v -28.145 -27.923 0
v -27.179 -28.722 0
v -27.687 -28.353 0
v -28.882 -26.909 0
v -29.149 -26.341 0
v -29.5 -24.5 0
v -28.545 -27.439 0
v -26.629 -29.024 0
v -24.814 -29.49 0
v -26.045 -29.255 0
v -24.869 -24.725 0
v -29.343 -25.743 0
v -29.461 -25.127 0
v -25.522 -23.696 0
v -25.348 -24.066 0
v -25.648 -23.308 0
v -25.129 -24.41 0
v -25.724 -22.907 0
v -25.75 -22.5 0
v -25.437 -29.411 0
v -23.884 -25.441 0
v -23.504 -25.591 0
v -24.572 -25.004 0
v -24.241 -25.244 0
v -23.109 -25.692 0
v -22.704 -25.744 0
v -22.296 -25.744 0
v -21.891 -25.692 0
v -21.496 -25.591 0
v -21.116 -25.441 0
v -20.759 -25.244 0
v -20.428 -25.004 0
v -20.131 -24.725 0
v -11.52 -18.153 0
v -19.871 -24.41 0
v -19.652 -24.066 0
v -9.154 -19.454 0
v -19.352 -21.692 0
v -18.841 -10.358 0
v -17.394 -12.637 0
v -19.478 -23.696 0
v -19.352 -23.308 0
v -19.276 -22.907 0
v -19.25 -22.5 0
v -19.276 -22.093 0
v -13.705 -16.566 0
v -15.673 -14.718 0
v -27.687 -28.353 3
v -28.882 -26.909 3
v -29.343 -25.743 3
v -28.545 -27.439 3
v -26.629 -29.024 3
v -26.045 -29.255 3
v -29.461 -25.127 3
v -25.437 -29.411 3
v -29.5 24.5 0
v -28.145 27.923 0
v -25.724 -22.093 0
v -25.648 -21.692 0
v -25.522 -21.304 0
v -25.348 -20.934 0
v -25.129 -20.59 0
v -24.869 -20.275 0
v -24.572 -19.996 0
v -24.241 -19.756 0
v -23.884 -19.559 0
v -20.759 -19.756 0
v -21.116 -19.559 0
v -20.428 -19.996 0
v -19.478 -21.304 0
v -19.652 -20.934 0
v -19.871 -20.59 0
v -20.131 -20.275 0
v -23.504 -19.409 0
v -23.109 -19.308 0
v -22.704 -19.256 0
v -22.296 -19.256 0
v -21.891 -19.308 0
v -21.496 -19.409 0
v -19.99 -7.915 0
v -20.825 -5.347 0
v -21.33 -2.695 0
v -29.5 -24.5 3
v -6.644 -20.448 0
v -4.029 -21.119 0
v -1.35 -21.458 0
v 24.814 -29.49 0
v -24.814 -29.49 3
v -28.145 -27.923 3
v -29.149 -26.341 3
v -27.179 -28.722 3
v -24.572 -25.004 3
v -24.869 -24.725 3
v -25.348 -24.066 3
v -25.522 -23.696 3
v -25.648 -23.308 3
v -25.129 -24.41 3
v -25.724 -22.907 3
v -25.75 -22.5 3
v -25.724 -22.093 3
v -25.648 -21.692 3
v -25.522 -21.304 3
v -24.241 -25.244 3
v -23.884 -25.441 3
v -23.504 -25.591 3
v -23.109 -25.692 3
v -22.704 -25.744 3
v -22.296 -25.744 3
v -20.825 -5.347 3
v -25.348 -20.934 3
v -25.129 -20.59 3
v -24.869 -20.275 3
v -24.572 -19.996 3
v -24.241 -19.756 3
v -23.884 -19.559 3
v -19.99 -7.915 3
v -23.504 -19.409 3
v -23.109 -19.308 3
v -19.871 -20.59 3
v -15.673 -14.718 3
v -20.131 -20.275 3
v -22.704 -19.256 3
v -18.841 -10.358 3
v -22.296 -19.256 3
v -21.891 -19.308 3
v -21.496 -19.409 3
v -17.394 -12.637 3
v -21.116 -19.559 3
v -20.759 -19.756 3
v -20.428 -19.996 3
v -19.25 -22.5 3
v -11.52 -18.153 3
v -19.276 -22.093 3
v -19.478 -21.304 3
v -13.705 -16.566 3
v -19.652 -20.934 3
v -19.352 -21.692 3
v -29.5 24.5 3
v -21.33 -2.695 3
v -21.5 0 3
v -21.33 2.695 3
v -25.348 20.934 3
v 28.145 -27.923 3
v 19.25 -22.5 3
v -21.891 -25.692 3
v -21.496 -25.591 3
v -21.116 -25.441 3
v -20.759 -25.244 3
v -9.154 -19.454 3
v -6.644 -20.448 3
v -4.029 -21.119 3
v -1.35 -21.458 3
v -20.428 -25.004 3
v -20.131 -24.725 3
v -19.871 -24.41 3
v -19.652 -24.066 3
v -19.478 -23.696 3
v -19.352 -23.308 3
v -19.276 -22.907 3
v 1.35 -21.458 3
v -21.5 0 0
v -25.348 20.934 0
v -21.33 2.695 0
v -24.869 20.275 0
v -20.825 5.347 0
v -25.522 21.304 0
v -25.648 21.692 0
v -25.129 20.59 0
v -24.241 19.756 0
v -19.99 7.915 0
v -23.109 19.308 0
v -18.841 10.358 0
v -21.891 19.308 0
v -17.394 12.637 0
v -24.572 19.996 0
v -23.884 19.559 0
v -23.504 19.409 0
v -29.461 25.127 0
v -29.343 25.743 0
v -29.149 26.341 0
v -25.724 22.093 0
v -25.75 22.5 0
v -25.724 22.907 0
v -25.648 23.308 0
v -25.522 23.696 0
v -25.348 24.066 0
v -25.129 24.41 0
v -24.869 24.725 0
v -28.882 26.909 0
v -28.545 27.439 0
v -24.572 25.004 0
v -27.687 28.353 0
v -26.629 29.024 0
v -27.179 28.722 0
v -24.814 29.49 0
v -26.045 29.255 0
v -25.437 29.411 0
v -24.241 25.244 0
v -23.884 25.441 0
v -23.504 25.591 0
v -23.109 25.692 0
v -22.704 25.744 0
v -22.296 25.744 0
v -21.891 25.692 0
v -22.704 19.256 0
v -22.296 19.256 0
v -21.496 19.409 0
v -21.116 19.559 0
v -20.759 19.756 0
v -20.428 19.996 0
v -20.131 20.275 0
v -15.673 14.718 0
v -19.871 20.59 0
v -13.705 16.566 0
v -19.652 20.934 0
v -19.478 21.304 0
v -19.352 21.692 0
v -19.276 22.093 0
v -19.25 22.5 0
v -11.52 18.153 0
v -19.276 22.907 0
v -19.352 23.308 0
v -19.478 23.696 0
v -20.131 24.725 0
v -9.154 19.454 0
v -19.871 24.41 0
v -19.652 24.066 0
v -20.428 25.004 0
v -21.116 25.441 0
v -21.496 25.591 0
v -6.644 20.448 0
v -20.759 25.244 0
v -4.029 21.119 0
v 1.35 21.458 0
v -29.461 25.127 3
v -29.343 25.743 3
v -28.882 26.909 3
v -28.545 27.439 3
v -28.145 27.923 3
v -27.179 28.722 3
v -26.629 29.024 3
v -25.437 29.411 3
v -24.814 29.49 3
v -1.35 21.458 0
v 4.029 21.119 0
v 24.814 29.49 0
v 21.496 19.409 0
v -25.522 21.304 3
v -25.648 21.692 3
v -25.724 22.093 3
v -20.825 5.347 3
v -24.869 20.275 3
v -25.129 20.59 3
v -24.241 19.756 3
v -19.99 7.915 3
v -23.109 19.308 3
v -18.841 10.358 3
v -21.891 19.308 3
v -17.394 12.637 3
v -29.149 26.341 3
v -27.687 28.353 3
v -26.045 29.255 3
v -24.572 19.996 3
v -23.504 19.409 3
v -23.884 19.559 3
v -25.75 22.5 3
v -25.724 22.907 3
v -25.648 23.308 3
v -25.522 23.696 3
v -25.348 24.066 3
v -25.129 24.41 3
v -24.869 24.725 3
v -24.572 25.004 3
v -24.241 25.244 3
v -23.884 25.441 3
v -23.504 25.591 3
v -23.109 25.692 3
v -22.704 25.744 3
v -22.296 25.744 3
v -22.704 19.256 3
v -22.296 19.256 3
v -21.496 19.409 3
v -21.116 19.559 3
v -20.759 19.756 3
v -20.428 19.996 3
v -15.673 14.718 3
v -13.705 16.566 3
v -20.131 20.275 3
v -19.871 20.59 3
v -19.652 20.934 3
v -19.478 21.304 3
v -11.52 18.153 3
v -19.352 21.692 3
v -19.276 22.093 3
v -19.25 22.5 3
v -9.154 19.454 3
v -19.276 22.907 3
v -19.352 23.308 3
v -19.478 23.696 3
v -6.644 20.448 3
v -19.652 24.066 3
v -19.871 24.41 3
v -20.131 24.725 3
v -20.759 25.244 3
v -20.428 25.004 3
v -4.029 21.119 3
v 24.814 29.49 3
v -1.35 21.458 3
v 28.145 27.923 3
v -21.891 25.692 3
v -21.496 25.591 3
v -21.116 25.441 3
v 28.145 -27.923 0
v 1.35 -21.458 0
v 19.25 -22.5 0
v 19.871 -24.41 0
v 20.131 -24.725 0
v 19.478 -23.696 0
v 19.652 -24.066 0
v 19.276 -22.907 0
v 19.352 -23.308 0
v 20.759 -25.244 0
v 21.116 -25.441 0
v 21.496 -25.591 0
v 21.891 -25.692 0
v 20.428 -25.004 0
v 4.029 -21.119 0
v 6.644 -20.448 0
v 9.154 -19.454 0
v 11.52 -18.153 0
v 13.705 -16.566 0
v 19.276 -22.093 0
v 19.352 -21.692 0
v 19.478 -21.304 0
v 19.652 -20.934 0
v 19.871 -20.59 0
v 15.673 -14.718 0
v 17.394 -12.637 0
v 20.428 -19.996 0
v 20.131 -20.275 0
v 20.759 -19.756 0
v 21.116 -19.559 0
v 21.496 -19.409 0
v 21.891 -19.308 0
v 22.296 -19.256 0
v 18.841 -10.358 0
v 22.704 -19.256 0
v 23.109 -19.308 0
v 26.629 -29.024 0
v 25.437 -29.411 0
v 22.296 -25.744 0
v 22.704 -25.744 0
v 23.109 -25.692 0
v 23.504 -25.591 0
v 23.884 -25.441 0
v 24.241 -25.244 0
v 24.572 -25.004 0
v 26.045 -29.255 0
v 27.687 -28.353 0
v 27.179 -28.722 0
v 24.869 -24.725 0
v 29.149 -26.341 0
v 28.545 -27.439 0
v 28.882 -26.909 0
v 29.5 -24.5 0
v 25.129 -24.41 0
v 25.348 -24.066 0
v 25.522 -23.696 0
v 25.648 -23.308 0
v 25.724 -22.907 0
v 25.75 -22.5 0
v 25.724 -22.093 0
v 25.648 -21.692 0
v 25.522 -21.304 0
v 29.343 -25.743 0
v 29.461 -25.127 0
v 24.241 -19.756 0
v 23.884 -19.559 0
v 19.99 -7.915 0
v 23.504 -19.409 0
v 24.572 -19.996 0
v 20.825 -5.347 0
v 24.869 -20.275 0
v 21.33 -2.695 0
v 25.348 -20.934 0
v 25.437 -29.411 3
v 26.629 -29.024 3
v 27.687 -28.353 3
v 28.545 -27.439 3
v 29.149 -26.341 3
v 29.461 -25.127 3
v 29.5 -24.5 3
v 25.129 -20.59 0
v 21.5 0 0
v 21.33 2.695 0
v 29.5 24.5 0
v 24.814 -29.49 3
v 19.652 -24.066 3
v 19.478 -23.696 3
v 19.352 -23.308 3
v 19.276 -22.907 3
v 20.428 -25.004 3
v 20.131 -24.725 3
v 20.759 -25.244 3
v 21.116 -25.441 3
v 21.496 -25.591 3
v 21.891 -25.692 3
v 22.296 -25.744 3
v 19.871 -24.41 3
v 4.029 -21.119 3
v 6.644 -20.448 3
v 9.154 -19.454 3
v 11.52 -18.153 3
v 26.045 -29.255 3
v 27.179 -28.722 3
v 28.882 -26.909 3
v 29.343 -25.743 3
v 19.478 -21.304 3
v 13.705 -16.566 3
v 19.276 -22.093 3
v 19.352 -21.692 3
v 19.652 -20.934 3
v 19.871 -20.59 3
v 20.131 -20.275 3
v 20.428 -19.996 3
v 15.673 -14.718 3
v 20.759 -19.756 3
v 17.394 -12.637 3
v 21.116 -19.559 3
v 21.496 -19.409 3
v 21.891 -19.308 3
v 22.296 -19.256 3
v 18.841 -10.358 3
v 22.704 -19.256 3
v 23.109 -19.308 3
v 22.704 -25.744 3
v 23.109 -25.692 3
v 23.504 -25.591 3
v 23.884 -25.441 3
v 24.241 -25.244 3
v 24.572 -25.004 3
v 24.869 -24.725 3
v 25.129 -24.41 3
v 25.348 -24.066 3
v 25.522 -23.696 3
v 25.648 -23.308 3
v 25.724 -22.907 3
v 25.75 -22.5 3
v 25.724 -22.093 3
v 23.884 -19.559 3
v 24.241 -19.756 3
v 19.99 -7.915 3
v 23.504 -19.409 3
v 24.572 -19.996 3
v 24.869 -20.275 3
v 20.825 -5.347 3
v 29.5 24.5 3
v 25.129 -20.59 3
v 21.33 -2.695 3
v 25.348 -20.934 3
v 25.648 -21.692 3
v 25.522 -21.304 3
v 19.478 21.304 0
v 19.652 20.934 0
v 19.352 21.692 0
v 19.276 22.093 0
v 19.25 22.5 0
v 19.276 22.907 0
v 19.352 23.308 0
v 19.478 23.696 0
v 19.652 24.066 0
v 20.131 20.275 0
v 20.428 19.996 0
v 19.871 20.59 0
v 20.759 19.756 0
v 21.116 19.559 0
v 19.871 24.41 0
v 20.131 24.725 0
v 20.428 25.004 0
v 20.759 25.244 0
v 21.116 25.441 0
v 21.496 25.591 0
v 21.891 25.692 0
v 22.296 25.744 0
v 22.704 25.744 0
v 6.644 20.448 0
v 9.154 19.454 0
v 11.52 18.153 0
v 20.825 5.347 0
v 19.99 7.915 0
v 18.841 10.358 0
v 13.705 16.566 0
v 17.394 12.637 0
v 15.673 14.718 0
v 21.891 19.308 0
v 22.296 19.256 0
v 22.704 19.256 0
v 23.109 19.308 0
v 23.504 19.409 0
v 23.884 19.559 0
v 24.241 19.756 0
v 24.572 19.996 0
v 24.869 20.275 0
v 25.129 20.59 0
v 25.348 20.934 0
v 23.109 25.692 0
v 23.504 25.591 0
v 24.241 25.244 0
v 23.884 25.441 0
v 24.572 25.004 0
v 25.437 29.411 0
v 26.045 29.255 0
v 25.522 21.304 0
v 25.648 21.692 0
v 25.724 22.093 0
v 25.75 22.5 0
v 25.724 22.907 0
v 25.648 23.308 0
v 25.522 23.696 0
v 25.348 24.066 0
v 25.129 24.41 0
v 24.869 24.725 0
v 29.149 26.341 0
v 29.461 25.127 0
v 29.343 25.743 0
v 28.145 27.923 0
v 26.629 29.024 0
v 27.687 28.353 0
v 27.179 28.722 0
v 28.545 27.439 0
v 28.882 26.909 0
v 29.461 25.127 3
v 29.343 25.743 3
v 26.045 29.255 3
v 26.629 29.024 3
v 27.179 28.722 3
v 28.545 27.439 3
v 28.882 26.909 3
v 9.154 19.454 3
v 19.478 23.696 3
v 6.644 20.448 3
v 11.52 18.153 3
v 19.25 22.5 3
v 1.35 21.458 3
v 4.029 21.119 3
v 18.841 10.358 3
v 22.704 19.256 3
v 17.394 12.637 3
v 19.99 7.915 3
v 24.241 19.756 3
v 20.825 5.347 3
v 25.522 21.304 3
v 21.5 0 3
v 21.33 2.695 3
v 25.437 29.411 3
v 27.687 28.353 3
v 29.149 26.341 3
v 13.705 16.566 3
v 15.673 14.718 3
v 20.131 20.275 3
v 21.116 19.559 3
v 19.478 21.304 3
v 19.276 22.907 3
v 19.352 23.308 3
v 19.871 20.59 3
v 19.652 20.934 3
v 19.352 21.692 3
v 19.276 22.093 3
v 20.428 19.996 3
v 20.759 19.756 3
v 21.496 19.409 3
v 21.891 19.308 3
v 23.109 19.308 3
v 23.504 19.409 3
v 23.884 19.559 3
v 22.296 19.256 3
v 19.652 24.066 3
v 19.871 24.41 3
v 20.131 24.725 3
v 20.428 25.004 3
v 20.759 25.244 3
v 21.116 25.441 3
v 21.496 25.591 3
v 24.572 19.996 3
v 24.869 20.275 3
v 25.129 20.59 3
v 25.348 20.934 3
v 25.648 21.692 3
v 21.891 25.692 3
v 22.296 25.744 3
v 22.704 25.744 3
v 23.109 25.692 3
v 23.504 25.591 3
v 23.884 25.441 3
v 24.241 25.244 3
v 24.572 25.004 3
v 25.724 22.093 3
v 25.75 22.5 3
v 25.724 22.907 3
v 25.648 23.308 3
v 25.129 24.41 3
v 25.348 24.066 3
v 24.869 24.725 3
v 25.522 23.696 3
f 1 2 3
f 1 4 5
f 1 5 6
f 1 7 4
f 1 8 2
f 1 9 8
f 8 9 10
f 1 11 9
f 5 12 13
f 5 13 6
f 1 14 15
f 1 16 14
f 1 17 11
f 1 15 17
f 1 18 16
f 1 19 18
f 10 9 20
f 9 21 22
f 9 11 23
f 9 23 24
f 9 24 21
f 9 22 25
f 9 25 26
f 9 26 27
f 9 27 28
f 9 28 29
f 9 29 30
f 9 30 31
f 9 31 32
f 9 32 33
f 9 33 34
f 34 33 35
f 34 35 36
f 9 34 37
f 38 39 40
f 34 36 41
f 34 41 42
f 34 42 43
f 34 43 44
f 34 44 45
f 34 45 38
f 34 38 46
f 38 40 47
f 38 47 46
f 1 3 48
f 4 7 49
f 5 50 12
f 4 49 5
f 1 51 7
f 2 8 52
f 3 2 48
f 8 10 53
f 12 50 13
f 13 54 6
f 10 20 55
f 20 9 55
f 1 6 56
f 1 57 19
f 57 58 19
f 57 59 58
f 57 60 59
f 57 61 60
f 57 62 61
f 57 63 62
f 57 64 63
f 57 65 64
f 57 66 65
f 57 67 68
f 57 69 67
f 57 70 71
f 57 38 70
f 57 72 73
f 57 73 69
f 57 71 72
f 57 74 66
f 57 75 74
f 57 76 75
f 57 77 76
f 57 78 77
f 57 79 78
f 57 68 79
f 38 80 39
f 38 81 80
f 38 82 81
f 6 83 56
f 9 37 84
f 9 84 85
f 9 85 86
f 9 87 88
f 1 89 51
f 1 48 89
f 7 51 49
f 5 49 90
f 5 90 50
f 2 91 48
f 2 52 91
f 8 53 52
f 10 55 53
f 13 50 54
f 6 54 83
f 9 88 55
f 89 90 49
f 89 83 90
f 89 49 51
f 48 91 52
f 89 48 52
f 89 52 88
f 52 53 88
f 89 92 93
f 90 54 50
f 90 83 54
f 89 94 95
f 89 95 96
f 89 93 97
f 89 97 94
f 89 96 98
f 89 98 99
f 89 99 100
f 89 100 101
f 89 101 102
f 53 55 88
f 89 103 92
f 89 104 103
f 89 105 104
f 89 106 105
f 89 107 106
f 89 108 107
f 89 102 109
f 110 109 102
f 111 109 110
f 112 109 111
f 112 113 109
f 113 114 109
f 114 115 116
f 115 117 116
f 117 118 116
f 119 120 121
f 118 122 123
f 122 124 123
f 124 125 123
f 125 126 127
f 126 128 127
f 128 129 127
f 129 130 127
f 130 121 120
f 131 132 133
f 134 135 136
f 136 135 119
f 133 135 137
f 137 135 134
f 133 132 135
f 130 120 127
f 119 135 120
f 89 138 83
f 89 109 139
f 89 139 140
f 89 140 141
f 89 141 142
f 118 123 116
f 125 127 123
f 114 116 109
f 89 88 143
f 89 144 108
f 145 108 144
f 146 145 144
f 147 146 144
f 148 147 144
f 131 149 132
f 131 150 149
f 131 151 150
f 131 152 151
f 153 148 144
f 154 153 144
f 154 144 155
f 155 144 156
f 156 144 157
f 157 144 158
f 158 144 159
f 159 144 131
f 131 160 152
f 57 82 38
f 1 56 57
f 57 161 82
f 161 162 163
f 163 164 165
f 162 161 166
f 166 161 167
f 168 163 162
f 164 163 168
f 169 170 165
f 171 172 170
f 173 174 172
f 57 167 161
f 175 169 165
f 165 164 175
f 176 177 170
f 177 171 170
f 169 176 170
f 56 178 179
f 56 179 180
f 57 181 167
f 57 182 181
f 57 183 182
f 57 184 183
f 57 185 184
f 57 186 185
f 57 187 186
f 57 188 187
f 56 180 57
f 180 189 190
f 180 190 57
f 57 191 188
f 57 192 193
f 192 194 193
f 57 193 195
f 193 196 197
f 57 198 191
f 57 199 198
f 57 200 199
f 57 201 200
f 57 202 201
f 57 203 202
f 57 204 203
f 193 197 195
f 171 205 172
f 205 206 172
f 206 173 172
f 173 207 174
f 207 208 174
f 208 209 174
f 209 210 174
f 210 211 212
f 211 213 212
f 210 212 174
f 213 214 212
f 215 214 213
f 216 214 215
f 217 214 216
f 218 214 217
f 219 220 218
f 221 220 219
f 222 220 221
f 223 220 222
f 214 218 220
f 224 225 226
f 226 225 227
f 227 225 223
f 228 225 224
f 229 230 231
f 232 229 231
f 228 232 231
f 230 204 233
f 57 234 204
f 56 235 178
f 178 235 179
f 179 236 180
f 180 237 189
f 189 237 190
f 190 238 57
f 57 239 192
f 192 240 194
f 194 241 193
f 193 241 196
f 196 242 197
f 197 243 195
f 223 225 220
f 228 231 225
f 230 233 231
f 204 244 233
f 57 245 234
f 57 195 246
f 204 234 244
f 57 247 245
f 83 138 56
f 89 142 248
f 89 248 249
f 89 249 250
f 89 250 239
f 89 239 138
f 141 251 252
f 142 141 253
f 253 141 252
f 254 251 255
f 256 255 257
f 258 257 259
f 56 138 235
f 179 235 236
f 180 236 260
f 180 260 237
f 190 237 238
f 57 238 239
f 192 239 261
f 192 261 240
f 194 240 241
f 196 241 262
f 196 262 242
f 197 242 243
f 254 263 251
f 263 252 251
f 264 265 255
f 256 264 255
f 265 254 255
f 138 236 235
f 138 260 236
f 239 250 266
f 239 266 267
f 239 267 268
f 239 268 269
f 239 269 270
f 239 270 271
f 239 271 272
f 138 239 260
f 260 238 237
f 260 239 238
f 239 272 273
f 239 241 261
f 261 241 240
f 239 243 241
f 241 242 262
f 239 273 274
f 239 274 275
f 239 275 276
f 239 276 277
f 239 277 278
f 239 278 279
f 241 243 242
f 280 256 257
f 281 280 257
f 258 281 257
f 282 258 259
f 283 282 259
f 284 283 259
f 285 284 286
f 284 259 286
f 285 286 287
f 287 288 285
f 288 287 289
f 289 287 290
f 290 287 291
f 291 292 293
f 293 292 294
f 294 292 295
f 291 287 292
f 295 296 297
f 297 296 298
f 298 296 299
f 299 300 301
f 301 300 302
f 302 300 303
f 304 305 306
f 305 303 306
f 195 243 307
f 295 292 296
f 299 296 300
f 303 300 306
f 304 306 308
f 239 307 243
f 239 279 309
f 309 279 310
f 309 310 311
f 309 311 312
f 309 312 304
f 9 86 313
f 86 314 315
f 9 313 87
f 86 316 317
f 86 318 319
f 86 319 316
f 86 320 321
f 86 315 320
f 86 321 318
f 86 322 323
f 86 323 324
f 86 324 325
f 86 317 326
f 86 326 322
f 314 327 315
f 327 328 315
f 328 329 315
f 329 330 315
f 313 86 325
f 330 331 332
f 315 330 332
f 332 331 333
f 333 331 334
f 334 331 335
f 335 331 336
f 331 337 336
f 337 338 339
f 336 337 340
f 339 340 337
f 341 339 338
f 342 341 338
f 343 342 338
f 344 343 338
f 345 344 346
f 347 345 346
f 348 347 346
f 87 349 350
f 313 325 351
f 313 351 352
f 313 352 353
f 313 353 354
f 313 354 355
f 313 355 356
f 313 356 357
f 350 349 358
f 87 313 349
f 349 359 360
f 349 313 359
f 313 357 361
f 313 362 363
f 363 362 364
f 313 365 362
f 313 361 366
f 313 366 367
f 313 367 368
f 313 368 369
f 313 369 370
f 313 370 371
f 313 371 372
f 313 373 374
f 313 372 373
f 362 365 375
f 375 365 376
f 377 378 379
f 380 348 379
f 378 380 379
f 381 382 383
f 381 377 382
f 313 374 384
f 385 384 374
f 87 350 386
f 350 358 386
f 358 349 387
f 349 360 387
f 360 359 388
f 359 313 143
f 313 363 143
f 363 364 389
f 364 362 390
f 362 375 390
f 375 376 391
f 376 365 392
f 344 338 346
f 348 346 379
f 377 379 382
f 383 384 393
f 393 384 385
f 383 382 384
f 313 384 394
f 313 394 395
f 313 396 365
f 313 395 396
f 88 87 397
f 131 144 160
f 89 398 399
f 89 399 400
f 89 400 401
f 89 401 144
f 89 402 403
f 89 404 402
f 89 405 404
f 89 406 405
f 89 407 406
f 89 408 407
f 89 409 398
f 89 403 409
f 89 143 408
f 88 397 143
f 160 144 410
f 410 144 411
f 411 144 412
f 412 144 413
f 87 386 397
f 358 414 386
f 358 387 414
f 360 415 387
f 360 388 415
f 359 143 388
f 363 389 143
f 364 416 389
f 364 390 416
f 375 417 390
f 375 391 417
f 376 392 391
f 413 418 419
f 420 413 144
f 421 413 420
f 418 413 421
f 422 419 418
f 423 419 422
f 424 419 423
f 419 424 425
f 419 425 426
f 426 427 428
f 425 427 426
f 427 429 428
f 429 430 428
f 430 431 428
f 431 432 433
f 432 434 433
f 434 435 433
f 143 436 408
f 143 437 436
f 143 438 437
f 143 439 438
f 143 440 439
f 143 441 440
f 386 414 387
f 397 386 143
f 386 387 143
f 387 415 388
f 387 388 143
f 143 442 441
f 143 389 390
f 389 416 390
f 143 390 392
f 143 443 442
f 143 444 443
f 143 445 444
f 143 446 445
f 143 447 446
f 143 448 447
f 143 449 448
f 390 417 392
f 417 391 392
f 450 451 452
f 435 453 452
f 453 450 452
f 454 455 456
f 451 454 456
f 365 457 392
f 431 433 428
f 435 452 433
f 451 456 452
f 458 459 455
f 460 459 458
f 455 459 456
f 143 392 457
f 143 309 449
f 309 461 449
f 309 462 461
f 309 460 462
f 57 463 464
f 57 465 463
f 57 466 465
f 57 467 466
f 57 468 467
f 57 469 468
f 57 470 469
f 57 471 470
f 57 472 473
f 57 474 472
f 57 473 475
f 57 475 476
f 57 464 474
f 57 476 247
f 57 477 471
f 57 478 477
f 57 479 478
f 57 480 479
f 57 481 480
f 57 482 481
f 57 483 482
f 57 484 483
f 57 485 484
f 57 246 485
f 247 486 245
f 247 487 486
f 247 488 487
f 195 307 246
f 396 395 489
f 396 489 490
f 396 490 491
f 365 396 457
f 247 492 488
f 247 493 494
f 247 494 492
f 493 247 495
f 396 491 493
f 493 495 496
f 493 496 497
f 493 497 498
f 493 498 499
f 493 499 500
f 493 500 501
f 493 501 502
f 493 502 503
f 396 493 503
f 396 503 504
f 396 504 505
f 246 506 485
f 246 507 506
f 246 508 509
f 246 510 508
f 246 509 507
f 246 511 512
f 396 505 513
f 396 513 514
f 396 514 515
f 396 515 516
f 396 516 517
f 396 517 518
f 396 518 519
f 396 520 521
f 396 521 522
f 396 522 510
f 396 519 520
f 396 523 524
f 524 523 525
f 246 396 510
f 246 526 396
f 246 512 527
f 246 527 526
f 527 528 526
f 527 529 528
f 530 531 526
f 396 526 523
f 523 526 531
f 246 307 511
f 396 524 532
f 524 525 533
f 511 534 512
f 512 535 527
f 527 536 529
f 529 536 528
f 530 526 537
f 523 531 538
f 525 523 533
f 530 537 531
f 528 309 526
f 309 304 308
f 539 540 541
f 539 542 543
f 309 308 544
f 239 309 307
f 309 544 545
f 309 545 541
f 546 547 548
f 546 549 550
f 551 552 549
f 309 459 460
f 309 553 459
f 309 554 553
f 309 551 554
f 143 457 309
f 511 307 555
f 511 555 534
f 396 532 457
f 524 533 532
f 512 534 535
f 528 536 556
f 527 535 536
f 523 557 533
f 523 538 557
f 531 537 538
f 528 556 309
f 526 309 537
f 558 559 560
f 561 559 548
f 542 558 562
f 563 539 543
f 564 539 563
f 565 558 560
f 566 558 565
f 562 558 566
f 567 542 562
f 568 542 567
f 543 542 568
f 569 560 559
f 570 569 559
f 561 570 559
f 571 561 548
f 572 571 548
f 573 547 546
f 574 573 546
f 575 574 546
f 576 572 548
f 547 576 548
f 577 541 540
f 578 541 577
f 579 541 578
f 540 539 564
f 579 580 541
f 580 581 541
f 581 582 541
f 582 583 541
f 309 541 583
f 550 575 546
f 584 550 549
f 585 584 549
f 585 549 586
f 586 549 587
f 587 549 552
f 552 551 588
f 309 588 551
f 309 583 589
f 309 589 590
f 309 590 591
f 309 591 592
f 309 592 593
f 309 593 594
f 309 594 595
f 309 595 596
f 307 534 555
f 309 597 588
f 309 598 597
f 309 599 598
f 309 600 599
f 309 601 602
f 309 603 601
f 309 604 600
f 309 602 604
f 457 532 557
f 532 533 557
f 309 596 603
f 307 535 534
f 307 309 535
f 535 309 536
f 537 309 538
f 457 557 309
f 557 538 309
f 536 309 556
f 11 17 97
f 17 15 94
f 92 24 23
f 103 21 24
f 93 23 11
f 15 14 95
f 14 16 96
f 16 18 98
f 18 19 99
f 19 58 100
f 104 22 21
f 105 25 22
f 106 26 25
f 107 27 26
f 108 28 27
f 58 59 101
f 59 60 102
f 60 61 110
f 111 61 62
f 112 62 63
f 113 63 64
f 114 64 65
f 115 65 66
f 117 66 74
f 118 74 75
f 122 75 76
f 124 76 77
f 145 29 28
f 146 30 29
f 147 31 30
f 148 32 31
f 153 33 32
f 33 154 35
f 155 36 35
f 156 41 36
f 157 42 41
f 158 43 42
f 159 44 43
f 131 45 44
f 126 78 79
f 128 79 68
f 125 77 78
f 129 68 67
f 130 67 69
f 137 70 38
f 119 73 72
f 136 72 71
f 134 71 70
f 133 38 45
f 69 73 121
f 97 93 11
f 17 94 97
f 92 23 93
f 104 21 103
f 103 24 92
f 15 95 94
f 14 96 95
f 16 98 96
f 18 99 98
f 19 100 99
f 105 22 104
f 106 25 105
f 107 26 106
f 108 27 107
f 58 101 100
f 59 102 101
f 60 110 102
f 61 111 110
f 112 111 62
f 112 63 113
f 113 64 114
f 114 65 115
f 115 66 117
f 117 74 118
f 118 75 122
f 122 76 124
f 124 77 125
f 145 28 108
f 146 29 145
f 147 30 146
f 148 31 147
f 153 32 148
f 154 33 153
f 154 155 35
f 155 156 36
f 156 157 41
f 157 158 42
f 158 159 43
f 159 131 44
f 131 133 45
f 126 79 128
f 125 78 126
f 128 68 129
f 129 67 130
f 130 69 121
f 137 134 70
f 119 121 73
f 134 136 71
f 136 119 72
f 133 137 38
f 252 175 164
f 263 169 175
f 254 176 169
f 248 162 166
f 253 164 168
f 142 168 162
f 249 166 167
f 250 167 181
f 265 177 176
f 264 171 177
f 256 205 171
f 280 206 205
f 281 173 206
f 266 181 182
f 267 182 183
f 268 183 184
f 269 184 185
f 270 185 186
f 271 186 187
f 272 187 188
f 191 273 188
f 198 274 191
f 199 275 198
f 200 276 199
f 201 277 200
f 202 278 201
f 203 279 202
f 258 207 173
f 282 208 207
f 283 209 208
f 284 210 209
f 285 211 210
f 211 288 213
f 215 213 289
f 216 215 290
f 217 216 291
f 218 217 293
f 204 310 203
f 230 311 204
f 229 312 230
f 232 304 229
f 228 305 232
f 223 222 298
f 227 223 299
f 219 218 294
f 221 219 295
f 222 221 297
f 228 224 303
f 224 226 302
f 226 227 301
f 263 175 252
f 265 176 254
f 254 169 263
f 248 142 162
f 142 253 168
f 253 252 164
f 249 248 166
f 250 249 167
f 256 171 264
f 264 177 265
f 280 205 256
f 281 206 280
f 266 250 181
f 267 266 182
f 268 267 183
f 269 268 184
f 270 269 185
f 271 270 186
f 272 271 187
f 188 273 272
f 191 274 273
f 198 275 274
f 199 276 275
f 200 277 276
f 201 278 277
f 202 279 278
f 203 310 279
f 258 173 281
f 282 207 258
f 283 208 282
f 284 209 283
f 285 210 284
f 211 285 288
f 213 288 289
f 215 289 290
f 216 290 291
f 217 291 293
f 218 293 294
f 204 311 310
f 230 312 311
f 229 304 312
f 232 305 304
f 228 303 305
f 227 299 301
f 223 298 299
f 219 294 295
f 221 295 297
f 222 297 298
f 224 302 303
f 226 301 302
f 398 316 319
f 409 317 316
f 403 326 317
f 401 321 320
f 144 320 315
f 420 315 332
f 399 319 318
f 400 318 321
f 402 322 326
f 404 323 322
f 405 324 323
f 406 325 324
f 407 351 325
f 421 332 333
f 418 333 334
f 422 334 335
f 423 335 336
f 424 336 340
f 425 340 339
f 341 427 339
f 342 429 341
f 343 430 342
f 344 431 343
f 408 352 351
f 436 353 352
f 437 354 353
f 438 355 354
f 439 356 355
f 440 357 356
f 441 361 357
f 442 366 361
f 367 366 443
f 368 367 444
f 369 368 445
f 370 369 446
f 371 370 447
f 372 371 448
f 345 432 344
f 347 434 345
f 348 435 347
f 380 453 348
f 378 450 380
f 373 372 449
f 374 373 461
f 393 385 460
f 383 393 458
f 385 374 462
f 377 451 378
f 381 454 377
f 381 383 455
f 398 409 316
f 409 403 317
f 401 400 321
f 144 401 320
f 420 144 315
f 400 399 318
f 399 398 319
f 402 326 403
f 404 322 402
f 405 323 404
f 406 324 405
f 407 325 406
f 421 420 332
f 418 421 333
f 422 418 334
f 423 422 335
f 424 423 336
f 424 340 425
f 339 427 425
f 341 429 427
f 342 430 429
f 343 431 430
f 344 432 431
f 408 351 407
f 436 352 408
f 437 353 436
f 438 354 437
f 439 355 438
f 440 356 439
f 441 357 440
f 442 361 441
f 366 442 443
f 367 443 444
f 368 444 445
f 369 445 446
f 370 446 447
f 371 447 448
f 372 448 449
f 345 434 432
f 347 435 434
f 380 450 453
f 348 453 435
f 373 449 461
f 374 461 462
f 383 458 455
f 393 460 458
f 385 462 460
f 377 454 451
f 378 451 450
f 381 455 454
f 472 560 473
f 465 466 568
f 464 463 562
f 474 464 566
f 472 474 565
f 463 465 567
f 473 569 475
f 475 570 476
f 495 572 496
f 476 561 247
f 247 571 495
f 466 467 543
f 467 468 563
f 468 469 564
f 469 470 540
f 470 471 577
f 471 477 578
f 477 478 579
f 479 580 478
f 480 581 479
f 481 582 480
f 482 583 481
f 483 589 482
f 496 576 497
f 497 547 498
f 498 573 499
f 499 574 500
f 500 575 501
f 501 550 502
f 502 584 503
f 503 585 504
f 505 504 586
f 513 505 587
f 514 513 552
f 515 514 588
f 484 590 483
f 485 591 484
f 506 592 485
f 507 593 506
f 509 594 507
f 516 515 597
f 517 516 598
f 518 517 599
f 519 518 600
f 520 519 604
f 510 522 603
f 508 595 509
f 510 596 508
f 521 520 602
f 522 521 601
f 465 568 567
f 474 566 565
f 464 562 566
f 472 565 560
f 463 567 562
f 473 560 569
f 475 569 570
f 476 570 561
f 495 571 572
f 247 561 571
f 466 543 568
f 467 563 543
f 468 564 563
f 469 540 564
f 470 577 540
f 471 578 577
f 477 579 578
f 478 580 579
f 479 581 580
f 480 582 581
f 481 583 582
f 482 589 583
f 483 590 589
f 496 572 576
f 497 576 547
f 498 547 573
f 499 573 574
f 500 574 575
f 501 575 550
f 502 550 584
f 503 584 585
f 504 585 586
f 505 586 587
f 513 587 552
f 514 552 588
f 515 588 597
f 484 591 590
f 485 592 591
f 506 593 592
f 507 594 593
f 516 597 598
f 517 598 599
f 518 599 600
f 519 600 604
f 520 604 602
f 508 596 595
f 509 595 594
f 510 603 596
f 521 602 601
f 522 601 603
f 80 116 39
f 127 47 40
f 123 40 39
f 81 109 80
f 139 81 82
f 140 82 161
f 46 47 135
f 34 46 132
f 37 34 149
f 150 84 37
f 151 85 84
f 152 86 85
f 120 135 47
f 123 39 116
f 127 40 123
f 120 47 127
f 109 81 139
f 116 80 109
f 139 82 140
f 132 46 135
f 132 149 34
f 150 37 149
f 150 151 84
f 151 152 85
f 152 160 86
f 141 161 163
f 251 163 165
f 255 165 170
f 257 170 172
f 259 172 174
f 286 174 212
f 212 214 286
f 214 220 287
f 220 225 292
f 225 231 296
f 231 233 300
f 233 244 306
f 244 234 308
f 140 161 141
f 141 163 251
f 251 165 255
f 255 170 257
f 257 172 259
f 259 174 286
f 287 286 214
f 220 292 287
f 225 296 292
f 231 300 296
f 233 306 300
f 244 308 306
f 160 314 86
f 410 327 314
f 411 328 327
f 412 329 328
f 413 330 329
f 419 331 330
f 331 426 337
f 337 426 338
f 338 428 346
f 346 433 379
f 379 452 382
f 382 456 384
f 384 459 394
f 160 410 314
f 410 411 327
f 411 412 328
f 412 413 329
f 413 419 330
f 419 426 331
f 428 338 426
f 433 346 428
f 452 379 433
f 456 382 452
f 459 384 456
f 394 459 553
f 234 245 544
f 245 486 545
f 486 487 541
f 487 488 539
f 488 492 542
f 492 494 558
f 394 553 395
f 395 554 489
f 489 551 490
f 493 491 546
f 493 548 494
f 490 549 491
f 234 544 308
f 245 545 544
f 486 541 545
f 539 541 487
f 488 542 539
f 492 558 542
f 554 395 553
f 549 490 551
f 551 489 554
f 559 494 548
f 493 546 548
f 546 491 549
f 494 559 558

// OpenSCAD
$fn = 50;

difference() {
	union() {
		hull() {
			translate(v = [-24.5, 24.5, 0]) {
				cylinder(h = 3, r = 5);
			}
			translate(v = [24.5, 24.5, 0]) {
				cylinder(h = 3, r = 5);
			}
			translate(v = [-24.5, -24.5, 0]) {
				cylinder(h = 3, r = 5);
			}
			translate(v = [24.5, -24.5, 0]) {
				cylinder(h = 3, r = 5);
			}
		}
	}
	union() {
		translate(v = [-22.5, -22.5, -100.0]) {
			cylinder(h = 200, r = 3.25);
		}
		translate(v = [-22.5, 22.5, -100.0]) {
			cylinder(h = 200, r = 3.25);
		}
		translate(v = [22.5, -22.5, -100.0]) {
			cylinder(h = 200, r = 3.25);
		}
		translate(v = [22.5, 22.5, -100.0]) {
			cylinder(h = 200, r = 3.25);
		}
		translate(v = [-22.5, -22.5, -100.0]) {
			cylinder(h = 200, r = 1.8);
		}
		translate(v = [-22.5, 22.5, -100.0]) {
			cylinder(h = 200, r = 1.8);
		}
		translate(v = [22.5, -22.5, -100.0]) {
			cylinder(h = 200, r = 1.8);
		}
		translate(v = [22.5, 22.5, -100.0]) {
			cylinder(h = 200, r = 1.8);
		}
		cylinder(h = 3, r = 21.5);
	}
}
